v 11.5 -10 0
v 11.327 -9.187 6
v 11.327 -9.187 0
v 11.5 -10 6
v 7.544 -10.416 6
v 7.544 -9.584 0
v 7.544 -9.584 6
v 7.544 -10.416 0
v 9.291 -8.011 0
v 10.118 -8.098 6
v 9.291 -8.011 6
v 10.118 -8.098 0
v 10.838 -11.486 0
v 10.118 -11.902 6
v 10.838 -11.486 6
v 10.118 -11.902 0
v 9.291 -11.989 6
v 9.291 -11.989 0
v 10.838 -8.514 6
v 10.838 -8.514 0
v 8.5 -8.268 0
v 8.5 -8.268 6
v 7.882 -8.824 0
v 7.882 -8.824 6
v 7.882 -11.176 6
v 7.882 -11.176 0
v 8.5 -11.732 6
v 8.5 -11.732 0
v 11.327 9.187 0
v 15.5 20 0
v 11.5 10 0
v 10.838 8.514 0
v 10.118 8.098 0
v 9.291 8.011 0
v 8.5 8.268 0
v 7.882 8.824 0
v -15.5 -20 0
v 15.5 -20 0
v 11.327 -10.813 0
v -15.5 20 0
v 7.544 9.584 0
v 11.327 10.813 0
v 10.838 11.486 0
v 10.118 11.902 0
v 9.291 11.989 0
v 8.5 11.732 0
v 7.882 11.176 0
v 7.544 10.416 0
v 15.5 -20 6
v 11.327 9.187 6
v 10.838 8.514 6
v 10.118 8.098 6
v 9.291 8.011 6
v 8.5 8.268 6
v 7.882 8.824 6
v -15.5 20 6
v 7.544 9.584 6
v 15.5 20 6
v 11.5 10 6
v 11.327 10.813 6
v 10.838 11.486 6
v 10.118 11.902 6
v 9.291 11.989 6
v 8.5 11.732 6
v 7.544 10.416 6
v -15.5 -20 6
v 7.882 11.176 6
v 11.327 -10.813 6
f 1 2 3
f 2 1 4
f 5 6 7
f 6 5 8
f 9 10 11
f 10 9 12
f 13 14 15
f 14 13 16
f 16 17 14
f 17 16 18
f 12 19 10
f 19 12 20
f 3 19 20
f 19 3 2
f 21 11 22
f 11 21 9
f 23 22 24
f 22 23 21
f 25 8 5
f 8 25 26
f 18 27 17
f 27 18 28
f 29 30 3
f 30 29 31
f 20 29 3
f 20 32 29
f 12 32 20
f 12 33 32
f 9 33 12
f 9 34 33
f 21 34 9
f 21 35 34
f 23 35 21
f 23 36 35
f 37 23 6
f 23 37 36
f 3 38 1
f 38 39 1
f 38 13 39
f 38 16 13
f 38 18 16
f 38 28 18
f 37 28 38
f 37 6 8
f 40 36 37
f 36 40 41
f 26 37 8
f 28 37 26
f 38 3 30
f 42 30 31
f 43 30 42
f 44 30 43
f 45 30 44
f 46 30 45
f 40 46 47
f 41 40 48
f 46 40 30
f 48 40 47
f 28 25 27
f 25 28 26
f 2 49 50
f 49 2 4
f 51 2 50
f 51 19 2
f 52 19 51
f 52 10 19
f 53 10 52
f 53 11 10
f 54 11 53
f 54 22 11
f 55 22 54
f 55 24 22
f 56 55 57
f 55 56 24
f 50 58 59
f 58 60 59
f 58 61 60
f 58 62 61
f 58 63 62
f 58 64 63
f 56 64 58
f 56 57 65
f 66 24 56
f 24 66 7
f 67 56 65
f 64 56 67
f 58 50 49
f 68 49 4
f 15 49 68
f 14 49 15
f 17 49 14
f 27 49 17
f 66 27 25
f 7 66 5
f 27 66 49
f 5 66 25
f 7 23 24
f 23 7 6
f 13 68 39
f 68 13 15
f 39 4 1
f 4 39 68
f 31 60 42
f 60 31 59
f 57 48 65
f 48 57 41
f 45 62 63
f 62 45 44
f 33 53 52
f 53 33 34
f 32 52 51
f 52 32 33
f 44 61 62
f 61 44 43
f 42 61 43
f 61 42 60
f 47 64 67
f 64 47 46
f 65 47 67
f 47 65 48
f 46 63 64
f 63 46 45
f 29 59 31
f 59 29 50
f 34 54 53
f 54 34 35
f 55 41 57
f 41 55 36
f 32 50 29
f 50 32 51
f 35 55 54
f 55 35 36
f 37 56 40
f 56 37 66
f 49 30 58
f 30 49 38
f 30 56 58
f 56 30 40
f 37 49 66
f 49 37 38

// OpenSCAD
ANCHO               = 40;
ALTO                = 31;
PROFUNDIDAD         = 6;
MONT_AGUJ_TOP_DIST  = 6;
MONT_AGUJ_DIST      = 20;
MONT_AGUJ_DIAM      = 3+1;

module Separador()
{
    difference() {
        union() {
            translate([0, 0, PROFUNDIDAD/2]) cube([ALTO, ANCHO, PROFUNDIDAD], center = true);
        }
        for( i = [-1, 1] ) {
            translate([ALTO/2-MONT_AGUJ_TOP_DIST, MONT_AGUJ_DIST/2*i, 0]) # cylinder(d=MONT_AGUJ_DIAM, h=PROFUNDIDAD, $fn=15);
        }
    }
}

Separador();
